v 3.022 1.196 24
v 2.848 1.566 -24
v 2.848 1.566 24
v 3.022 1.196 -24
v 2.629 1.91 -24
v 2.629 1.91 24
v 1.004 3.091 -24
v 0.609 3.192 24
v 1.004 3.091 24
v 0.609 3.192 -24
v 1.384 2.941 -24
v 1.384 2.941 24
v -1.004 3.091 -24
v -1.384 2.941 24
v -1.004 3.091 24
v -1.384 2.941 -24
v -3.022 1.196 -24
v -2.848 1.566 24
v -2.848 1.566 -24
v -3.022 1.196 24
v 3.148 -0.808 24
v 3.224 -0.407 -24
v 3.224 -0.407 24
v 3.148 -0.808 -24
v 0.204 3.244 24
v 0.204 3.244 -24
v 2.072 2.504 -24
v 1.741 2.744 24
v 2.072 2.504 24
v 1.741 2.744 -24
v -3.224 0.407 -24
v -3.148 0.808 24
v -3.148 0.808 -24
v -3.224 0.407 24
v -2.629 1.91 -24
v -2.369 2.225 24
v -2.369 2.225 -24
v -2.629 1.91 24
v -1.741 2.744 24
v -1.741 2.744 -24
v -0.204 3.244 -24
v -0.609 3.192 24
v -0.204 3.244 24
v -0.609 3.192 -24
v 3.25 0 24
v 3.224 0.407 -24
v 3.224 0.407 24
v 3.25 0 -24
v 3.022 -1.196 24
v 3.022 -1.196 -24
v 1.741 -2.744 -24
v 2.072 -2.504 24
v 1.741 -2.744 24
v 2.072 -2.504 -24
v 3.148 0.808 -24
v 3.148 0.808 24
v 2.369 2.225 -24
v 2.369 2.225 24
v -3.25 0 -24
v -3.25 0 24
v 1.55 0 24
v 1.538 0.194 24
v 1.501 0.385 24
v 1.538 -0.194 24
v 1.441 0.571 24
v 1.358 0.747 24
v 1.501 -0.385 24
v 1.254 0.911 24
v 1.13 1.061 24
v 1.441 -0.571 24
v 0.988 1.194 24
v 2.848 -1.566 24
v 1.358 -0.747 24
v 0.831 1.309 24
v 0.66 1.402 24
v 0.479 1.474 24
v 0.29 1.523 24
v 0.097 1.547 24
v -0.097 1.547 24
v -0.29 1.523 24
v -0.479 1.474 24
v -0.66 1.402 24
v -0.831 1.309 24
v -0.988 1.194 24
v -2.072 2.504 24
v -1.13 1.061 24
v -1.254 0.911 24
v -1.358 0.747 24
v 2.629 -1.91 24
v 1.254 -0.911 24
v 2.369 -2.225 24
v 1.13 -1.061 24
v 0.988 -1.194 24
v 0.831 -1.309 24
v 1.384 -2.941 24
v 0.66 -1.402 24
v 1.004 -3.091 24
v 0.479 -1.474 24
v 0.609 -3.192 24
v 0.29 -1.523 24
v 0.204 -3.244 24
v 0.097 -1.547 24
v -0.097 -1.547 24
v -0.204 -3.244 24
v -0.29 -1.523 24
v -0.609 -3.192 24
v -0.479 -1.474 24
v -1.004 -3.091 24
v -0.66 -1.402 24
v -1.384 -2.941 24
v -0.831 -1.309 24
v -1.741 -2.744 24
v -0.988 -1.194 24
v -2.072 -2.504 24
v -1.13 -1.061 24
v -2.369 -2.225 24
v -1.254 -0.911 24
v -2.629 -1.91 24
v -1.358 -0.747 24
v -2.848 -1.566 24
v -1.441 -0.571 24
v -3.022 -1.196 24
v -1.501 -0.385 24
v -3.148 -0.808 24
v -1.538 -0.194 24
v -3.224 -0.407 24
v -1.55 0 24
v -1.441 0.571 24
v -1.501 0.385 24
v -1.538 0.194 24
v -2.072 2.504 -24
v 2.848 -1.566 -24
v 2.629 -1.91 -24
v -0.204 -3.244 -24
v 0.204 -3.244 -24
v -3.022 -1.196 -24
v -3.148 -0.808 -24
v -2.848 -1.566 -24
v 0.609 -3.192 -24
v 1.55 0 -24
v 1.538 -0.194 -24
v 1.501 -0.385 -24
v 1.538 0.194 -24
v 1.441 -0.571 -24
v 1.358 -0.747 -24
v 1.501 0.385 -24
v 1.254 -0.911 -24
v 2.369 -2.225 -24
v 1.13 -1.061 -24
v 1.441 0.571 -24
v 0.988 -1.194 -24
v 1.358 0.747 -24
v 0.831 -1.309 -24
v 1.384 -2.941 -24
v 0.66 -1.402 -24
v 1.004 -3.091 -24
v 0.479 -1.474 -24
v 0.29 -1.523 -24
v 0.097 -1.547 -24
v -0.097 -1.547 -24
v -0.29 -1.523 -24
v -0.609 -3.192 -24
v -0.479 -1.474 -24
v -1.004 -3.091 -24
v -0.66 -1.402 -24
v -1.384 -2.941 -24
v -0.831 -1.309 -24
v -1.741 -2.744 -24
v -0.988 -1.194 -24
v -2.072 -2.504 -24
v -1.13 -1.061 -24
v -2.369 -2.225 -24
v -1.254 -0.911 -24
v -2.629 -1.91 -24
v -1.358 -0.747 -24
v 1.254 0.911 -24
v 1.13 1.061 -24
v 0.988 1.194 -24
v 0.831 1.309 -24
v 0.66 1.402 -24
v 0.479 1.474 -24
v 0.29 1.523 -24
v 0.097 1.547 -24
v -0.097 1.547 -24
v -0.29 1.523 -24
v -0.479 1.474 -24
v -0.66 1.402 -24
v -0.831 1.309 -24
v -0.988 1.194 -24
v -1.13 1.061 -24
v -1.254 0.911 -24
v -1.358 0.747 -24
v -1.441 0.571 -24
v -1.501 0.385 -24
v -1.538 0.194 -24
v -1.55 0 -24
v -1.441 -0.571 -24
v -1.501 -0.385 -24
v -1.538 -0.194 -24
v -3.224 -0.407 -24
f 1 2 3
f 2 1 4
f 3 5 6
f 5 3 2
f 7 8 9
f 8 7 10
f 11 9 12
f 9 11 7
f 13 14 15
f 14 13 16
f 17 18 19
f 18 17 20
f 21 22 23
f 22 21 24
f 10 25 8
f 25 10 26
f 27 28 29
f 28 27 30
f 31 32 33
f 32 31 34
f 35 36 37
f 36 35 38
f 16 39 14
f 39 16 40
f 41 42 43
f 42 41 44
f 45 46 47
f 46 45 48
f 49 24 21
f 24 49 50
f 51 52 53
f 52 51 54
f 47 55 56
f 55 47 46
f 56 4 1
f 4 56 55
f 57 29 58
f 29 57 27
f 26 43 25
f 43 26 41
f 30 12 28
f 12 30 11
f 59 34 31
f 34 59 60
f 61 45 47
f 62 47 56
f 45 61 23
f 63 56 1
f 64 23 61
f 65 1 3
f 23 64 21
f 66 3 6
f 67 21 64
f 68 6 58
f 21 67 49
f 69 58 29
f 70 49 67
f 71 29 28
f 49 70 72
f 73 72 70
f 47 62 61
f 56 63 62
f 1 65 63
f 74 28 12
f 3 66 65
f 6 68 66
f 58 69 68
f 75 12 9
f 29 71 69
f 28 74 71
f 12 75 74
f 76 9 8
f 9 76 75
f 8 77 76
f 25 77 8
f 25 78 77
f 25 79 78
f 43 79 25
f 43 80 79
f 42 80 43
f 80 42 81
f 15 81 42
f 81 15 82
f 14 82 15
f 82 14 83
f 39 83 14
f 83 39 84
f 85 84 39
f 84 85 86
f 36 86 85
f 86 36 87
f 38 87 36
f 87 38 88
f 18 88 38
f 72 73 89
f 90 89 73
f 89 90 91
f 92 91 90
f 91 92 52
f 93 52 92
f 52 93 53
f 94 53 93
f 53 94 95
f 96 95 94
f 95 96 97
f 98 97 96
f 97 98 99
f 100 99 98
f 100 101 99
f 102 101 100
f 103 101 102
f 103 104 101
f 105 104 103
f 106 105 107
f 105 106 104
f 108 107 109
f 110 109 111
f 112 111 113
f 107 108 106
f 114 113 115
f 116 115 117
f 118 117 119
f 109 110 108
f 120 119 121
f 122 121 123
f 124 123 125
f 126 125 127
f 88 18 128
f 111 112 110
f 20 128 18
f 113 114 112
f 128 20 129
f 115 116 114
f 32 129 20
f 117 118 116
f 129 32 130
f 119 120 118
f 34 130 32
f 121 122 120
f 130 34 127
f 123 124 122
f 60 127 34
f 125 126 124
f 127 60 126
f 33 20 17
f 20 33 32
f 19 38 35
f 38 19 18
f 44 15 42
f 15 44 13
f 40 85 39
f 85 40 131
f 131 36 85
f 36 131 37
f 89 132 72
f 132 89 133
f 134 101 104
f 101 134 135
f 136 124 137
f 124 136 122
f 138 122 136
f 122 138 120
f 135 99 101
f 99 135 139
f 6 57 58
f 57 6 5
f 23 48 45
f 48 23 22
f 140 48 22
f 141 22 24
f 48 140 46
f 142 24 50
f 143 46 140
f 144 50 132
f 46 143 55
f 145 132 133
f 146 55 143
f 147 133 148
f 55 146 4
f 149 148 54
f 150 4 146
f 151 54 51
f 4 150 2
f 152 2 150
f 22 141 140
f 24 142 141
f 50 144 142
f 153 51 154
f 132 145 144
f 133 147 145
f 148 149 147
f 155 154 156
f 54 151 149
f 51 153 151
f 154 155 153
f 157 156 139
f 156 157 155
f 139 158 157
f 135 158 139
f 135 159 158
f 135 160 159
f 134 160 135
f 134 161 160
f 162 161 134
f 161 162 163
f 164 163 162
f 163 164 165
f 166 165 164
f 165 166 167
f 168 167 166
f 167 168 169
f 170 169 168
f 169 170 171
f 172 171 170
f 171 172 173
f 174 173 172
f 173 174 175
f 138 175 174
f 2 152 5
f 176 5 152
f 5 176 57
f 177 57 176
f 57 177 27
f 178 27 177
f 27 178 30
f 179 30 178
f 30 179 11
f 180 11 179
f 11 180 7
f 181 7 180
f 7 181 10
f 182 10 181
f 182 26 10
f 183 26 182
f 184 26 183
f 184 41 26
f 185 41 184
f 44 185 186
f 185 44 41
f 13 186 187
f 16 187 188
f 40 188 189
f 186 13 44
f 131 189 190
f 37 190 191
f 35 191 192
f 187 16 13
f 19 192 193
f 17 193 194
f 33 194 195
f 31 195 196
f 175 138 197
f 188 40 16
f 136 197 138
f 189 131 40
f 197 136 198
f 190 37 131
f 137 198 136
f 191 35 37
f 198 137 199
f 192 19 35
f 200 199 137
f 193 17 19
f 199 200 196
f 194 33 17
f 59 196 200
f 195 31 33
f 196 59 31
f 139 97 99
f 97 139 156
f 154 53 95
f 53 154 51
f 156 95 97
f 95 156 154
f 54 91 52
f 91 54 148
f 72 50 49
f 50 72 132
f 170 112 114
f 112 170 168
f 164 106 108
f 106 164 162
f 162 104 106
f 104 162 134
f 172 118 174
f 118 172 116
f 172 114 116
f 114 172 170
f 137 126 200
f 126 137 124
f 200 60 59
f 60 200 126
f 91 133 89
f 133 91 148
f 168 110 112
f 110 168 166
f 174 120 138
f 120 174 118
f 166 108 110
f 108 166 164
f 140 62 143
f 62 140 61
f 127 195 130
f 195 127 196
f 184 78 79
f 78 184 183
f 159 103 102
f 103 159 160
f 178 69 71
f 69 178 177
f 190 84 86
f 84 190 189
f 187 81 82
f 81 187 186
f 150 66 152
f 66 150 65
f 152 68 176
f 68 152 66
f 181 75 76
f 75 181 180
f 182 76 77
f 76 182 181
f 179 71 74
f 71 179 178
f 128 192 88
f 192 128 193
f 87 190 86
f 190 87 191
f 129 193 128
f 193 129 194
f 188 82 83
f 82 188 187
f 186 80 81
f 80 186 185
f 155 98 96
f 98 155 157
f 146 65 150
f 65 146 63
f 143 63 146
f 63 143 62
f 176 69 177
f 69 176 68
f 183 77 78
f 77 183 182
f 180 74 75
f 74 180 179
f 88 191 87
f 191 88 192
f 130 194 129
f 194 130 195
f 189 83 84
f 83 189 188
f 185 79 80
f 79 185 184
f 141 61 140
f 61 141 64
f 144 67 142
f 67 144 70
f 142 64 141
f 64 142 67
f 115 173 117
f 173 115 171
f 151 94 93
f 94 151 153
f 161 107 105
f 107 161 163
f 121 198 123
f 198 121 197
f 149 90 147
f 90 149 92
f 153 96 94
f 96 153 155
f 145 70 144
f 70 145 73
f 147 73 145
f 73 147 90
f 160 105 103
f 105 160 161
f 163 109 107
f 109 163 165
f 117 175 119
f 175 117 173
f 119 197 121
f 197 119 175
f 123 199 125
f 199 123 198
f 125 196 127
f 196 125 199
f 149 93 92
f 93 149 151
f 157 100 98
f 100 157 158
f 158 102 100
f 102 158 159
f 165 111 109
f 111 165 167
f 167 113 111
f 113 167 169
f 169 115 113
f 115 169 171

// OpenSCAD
$fn = 50;


difference() {
	union() {
		translate(v = [0, 0, -24.0000000000]) {
			cylinder(h = 48, r = 3.2500000000);
		}
	}
	union() {
		translate(v = [0, 0, -100.0000000000]) {
			cylinder(h = 200, r = 1.5500000000);
		}
	}
}
